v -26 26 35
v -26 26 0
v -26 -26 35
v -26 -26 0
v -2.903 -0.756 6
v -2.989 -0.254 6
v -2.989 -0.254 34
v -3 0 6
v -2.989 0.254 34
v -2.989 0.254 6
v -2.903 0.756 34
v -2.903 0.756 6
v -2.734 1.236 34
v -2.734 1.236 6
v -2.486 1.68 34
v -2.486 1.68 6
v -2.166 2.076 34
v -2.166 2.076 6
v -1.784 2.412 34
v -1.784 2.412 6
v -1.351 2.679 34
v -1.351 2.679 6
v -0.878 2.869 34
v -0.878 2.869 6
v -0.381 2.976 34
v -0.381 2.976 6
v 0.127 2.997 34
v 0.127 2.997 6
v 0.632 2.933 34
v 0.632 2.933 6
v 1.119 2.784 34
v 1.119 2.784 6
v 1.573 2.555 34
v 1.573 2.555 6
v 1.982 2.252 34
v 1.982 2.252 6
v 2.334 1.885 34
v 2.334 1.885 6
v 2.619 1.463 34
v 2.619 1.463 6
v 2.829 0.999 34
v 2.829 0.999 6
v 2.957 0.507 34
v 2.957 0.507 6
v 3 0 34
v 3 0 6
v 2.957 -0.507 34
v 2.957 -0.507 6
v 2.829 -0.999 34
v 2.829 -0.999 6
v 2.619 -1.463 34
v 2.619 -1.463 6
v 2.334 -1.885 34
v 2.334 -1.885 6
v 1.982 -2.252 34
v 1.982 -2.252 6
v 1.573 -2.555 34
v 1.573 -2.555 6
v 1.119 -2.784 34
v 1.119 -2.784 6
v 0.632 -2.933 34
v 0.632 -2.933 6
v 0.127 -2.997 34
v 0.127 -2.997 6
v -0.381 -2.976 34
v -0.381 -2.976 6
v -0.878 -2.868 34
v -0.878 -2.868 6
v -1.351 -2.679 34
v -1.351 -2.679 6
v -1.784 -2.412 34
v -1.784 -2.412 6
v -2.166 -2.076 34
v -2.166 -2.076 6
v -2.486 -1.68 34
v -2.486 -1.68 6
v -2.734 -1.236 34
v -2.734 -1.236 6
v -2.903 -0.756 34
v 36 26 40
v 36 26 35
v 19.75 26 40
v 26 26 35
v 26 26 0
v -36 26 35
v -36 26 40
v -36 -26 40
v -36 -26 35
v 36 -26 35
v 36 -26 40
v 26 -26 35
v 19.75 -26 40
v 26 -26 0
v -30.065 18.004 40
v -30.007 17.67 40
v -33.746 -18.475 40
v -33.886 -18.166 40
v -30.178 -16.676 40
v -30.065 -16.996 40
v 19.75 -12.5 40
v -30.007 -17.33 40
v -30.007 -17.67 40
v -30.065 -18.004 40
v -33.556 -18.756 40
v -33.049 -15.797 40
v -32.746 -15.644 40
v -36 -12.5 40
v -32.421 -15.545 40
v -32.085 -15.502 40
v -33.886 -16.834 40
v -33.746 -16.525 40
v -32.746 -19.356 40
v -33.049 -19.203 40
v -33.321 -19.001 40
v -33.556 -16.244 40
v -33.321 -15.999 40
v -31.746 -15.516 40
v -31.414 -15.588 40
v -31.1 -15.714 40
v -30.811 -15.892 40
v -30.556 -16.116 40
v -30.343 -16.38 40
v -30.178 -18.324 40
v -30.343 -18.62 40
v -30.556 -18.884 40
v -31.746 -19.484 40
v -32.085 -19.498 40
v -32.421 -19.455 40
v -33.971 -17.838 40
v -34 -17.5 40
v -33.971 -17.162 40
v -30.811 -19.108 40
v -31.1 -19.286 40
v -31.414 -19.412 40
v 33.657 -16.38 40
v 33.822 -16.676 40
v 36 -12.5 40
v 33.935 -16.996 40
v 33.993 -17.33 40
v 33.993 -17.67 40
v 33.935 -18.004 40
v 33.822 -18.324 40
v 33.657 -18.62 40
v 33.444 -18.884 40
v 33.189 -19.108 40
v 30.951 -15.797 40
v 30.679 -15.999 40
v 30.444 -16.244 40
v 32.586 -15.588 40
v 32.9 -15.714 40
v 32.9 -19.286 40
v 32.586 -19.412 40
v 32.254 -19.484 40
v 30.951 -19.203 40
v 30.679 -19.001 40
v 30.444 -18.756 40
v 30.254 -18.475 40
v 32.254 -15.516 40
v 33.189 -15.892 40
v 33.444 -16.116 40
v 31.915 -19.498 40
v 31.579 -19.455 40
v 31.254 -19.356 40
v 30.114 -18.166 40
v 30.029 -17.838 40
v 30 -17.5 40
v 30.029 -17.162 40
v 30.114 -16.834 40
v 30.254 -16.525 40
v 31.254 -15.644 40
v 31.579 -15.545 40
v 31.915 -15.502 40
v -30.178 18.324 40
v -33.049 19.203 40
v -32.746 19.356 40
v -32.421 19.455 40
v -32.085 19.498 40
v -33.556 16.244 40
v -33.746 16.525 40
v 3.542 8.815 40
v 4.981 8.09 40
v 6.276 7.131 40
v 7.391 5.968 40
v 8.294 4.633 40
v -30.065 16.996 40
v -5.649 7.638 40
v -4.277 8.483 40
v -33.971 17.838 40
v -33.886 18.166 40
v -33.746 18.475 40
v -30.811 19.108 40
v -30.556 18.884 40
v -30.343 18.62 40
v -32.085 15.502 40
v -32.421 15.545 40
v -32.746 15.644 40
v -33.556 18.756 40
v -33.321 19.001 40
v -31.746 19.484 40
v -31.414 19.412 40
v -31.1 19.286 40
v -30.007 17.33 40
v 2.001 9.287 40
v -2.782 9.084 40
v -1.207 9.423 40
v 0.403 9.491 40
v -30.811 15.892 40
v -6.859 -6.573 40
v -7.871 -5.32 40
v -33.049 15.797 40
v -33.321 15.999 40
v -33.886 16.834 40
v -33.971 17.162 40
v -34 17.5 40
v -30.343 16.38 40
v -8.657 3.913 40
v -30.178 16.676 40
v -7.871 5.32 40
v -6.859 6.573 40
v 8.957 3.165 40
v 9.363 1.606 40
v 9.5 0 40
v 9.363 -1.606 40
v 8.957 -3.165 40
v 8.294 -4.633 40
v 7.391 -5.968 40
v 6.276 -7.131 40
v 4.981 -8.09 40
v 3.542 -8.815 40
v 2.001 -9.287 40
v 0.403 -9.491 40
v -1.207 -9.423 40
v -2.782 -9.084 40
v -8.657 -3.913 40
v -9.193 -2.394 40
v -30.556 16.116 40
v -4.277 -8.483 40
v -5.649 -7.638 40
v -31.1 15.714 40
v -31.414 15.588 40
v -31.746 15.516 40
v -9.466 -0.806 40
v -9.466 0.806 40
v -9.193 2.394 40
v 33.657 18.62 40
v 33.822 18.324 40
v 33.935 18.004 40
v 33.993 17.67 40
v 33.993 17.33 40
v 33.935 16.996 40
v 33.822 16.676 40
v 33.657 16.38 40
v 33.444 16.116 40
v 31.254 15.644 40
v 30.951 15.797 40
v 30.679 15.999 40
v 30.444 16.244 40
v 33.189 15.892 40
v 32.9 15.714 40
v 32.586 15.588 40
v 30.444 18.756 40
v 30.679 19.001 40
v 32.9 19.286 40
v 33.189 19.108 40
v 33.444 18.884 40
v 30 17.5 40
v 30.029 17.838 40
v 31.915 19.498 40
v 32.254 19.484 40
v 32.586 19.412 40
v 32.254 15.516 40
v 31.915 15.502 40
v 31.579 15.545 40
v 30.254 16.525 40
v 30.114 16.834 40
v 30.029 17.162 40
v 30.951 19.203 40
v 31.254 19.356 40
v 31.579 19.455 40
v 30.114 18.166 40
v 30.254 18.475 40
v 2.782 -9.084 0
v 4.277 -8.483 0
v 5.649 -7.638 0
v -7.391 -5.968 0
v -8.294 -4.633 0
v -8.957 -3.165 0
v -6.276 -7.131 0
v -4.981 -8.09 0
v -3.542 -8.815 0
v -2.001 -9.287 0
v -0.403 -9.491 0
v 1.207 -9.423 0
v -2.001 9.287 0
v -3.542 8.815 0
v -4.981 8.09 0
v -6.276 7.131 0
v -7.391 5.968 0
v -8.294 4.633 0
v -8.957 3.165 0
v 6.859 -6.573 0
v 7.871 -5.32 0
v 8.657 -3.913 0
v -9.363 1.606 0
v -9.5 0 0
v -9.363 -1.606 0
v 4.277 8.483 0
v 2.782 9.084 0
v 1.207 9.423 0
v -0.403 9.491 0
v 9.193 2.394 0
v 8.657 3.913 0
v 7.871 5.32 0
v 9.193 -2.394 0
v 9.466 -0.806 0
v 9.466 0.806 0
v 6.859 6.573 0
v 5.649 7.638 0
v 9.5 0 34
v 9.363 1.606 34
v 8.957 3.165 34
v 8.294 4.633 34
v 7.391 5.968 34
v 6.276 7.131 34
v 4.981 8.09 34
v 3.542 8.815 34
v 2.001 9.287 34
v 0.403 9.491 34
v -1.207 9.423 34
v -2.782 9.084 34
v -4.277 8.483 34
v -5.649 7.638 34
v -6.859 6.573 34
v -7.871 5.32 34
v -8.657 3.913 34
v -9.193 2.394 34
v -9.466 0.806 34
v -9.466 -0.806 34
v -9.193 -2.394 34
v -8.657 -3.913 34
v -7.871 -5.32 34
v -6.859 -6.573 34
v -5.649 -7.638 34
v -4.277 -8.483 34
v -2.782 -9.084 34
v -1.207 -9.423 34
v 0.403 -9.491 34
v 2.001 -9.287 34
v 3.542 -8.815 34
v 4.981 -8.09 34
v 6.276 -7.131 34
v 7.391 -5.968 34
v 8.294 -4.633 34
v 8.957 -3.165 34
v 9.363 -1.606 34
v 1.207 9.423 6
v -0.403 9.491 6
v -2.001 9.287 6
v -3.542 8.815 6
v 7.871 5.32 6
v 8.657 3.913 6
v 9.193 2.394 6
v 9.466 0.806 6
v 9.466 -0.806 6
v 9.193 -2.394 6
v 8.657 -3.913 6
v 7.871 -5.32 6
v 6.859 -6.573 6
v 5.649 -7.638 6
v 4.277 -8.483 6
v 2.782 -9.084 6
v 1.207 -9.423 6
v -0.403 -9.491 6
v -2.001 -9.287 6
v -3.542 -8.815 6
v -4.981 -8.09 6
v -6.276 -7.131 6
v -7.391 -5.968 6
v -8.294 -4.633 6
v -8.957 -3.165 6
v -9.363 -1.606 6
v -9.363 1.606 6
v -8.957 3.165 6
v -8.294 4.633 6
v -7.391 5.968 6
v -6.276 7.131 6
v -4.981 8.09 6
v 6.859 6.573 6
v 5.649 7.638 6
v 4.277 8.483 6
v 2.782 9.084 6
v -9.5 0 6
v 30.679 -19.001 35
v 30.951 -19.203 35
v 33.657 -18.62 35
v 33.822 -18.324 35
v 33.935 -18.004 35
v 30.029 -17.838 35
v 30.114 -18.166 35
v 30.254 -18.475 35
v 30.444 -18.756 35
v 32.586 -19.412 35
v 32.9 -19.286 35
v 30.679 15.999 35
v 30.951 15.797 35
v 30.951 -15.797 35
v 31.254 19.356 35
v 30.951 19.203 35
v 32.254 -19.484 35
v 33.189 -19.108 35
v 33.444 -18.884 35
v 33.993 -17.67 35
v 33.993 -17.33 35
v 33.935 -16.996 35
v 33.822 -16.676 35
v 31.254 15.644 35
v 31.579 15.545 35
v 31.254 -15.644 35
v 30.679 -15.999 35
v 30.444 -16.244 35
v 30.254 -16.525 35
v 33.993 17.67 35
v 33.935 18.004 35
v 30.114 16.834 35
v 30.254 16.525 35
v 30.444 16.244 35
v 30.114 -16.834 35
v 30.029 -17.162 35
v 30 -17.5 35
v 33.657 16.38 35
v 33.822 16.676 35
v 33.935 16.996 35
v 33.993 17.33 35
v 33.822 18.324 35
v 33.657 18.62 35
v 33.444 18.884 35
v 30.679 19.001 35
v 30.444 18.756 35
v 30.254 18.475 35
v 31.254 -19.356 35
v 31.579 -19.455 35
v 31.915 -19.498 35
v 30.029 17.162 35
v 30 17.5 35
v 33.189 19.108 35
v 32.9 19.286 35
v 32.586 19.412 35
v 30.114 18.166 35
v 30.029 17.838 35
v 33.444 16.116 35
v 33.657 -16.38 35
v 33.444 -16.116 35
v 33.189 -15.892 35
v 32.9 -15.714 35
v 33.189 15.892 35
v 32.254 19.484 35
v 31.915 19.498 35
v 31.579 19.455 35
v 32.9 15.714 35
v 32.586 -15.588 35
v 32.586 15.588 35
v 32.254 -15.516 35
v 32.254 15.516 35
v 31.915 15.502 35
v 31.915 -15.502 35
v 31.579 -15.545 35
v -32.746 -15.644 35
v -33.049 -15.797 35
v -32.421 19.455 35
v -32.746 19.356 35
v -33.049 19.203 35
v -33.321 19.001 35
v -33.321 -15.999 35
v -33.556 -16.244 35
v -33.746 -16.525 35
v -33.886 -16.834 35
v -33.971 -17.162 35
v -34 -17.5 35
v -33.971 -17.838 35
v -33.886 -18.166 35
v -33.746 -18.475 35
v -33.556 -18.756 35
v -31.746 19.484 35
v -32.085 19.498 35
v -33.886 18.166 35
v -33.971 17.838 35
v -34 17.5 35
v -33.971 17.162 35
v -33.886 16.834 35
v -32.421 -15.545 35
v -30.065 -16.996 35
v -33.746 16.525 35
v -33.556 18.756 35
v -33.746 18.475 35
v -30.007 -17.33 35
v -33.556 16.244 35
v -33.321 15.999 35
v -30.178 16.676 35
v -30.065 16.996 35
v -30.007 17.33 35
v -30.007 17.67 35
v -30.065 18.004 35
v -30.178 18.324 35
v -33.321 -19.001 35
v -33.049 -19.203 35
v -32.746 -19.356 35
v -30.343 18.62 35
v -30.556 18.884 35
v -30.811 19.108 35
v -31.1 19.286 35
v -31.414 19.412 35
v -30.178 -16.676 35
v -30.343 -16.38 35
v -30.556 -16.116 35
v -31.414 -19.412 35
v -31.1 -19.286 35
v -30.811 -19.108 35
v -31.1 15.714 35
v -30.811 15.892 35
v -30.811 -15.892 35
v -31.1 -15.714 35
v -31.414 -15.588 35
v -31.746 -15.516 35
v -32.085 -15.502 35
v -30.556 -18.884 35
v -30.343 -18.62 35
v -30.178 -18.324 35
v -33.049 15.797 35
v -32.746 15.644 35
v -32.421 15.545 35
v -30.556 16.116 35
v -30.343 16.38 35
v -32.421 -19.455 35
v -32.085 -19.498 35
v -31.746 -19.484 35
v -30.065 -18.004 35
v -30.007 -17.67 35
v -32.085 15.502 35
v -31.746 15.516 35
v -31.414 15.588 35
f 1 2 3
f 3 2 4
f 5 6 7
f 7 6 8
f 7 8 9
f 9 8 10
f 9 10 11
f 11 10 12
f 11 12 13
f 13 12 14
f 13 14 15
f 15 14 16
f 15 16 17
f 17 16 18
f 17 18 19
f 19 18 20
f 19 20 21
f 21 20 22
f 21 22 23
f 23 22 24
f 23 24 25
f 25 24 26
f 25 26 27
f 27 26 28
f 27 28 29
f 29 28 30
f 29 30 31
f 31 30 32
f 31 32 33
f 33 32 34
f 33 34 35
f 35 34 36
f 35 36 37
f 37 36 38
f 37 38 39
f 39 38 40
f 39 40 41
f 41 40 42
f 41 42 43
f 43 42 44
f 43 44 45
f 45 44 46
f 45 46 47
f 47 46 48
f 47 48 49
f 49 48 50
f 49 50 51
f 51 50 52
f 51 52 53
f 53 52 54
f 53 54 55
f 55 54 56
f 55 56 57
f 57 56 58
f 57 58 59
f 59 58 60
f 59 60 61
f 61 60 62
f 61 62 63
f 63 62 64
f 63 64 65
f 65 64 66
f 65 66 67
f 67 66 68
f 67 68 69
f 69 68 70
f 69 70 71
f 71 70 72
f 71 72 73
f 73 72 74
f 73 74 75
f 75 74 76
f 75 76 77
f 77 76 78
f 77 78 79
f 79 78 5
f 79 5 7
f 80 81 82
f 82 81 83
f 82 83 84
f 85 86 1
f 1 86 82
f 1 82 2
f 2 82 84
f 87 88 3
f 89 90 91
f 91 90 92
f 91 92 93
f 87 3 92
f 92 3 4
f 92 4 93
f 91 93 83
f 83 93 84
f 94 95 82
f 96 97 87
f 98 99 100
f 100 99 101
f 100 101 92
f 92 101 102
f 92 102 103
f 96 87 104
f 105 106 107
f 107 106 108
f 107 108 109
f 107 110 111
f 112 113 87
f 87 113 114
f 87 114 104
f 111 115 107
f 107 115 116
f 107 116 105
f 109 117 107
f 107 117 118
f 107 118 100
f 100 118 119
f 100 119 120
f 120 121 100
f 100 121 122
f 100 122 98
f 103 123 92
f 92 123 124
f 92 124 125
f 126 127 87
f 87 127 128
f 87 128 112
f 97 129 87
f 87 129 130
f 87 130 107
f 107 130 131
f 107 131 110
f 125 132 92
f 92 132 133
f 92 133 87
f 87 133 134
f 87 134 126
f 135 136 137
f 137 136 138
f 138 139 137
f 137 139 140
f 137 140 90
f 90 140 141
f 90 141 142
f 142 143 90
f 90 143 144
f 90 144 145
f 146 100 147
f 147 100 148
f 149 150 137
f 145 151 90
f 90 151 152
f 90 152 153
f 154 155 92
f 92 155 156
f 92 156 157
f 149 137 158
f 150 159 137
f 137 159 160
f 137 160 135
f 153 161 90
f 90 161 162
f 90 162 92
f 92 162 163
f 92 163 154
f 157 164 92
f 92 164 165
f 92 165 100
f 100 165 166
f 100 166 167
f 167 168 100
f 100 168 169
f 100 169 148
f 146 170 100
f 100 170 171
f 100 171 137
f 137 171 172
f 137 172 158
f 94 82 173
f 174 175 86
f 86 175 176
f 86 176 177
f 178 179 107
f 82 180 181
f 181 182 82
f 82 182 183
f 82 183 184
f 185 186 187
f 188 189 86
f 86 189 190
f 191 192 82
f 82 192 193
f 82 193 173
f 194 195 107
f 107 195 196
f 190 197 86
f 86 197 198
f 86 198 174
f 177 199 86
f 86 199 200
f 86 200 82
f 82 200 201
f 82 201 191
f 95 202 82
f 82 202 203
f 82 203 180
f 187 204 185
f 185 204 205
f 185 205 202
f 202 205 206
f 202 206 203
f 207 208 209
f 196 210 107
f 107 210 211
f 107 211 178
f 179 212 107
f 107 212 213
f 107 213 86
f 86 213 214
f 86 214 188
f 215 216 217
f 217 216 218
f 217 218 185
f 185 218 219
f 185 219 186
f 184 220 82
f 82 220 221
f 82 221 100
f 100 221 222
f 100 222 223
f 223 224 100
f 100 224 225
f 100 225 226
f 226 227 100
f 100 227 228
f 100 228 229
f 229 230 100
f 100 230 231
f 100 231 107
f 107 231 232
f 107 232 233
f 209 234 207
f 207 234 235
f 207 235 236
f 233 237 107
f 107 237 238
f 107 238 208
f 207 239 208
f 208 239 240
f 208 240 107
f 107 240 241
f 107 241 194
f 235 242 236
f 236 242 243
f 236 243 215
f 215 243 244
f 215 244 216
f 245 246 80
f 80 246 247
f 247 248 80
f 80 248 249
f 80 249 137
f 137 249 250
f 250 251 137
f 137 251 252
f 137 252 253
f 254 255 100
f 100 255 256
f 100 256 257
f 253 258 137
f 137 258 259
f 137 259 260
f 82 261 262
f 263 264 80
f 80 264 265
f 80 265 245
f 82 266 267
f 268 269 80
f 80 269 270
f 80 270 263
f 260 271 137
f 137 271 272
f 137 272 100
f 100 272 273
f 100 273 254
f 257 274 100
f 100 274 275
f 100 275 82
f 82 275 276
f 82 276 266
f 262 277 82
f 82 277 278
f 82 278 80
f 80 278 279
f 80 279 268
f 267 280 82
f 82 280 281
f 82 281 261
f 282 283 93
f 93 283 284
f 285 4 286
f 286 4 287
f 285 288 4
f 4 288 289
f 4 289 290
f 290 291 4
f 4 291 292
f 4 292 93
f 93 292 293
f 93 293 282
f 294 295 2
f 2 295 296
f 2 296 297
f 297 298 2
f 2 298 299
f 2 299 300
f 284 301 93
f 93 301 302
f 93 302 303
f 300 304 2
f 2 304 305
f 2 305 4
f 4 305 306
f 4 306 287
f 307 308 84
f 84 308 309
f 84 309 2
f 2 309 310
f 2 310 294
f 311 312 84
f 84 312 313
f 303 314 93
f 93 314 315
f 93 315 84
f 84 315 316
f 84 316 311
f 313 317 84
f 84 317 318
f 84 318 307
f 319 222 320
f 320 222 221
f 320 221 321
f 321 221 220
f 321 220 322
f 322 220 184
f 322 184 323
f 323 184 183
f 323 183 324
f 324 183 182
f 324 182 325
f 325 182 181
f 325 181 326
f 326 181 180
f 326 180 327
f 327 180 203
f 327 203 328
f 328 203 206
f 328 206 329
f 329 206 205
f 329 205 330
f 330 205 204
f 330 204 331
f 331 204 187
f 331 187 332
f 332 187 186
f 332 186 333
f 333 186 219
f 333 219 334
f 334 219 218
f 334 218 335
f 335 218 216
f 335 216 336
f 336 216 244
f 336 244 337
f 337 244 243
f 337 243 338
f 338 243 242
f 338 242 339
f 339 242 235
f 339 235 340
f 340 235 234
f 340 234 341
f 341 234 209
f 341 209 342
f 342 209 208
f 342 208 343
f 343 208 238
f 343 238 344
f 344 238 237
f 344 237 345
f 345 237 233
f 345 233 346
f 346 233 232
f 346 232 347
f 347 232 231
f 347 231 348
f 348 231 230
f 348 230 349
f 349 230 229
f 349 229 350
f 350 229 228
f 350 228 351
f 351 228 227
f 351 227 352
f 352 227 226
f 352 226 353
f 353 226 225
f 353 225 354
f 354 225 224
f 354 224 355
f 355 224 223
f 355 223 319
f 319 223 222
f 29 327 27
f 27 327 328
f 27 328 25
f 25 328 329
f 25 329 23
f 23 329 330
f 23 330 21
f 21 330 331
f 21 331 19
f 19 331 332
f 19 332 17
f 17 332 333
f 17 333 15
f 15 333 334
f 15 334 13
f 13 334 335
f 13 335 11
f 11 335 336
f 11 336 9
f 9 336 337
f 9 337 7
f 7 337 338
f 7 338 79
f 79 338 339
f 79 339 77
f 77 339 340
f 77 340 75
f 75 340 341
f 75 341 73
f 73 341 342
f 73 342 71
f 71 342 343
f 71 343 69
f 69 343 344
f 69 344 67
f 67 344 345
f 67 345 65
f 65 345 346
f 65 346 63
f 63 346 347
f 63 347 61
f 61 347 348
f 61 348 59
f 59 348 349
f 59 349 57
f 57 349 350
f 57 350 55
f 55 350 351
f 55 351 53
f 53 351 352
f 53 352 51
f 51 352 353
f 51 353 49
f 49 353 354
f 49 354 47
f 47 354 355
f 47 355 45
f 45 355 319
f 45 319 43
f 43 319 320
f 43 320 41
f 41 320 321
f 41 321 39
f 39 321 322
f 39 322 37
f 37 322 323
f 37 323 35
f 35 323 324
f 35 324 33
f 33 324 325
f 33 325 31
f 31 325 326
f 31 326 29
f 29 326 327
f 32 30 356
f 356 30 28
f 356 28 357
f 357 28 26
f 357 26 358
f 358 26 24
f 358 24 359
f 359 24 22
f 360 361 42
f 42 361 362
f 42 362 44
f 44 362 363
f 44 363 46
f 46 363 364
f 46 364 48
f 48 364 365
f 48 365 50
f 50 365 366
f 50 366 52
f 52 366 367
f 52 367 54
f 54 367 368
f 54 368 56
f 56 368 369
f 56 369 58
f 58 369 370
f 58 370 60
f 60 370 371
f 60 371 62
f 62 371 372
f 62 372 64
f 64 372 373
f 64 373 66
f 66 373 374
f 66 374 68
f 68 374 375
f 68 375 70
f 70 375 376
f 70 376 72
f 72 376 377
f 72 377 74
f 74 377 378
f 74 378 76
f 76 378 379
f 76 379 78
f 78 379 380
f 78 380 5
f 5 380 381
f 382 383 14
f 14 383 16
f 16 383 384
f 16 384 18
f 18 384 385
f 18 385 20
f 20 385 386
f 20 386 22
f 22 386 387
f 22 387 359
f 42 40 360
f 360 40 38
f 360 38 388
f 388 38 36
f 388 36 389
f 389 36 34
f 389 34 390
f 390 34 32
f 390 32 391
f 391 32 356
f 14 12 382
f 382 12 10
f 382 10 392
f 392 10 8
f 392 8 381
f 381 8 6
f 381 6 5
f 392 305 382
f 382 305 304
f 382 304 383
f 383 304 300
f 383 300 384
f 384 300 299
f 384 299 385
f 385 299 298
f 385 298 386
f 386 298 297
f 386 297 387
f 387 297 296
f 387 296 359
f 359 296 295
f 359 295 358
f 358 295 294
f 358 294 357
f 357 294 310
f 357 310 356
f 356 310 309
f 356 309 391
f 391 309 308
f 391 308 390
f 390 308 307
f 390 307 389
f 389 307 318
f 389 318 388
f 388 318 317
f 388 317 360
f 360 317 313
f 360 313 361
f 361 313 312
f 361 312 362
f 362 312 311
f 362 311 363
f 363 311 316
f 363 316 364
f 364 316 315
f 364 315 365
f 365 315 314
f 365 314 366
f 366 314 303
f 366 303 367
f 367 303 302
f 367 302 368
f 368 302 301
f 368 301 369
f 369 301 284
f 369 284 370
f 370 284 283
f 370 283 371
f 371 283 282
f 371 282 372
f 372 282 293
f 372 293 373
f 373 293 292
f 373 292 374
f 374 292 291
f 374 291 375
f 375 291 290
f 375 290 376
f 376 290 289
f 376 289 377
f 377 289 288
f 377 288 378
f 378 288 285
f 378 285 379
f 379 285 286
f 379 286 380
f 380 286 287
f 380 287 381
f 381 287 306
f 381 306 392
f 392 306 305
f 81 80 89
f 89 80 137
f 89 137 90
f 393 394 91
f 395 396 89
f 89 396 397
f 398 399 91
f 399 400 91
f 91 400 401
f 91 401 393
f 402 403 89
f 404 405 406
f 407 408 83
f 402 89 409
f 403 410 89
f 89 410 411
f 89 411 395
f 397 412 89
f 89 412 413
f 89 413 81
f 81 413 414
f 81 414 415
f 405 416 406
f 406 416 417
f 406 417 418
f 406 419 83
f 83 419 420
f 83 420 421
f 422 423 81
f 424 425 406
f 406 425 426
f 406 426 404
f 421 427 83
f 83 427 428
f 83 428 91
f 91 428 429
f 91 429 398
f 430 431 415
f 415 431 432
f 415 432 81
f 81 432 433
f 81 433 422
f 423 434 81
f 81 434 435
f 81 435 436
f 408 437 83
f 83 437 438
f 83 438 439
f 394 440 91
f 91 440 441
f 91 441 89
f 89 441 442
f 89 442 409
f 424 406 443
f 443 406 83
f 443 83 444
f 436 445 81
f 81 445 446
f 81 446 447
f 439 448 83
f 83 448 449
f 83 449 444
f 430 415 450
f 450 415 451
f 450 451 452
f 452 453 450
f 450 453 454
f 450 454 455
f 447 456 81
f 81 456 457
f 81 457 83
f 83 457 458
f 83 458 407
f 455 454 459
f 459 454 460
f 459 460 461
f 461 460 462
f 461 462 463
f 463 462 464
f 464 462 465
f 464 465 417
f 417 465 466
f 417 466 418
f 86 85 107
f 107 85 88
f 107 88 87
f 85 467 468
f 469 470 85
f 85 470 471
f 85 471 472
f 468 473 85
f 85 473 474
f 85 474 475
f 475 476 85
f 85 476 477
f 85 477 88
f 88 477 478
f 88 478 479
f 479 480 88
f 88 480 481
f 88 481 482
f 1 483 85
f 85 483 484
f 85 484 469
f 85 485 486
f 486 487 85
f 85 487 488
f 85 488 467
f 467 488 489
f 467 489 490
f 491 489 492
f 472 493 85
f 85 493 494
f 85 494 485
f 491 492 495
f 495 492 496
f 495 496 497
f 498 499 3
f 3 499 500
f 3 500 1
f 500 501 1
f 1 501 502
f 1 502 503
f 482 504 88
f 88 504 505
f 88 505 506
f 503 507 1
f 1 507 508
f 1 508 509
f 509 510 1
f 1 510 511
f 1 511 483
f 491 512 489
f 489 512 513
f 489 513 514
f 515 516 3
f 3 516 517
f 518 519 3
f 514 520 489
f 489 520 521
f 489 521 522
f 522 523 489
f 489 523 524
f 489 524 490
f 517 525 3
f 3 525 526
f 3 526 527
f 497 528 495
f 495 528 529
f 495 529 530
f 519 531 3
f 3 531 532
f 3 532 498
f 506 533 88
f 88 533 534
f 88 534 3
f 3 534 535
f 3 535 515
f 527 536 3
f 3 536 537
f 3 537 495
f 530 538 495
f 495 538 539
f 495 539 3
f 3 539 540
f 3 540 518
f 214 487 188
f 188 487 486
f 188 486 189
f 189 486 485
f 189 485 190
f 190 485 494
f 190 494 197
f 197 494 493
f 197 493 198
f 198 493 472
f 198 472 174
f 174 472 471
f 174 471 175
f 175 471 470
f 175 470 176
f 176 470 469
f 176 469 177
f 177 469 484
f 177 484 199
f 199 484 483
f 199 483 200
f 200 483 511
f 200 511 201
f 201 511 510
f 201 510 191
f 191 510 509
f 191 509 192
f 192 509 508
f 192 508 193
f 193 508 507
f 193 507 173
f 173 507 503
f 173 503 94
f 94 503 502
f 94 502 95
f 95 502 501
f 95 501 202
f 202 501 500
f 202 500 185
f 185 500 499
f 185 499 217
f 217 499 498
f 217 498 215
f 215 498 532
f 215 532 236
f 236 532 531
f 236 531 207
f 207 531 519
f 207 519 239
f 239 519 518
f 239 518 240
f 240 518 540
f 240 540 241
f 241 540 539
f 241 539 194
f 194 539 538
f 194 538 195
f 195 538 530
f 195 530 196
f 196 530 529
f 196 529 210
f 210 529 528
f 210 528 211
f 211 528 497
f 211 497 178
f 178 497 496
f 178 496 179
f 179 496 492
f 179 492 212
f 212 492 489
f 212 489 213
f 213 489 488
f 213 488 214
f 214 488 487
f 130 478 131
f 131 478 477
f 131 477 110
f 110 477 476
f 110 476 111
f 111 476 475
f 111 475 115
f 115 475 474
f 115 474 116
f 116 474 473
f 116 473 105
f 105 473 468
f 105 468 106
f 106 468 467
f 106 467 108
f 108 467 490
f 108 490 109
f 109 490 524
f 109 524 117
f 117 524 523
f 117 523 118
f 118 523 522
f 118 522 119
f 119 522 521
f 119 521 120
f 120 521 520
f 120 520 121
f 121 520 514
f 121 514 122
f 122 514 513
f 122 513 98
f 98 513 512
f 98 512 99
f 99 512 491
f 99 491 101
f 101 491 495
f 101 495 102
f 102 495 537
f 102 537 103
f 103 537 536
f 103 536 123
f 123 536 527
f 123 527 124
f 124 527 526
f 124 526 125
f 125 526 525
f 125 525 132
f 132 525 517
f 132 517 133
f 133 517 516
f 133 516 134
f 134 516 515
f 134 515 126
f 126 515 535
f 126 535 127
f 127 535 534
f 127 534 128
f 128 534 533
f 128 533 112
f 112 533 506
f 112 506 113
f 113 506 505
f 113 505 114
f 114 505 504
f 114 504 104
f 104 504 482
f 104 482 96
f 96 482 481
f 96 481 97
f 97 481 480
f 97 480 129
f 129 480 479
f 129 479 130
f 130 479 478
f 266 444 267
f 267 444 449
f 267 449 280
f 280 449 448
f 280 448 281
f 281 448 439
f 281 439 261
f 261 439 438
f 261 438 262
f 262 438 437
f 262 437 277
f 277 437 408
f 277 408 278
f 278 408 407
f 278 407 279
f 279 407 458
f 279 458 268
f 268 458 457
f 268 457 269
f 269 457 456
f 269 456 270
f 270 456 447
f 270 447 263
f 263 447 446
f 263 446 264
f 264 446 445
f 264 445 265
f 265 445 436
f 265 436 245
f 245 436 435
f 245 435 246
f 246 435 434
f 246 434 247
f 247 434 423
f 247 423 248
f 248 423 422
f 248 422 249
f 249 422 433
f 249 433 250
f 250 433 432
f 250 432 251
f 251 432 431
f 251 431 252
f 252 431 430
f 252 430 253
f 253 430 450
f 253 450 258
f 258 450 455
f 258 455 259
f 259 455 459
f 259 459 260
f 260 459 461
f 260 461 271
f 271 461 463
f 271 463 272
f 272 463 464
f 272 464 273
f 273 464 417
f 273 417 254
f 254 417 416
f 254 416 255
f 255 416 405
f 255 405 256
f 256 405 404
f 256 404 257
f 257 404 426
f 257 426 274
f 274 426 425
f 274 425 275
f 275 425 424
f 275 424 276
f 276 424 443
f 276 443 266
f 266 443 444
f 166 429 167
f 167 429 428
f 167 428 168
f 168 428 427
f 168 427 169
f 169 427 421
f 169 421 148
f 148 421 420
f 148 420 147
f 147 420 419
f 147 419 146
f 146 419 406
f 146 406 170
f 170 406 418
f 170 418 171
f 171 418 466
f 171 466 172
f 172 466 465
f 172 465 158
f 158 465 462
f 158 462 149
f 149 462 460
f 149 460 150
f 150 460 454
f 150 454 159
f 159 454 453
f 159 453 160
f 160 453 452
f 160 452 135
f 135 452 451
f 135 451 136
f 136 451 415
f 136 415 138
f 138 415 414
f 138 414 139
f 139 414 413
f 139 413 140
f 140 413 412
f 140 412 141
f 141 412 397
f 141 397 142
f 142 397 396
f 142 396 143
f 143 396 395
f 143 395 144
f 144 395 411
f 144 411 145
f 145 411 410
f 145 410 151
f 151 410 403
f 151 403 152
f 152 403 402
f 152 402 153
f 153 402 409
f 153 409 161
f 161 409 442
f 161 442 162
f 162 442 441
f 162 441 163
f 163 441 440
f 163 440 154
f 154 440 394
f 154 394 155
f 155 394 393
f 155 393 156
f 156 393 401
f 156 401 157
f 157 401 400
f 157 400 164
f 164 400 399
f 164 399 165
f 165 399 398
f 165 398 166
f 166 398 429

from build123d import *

# Parameters (mm, degrees)
SKETCH3_W           = 52
SKETCH3_H           = 52
BOSS_EXTRUDE1_DEPTH = 40
SKETCH4_R           = 3
CUT_EXTRUDE5_DEPTH  = 40
SKETCH4_5_R         = 9.5
SKETCH4_5_R_2       = 3
CUT_EXTRUDE6_DEPTH  = 6
CUT_EXTRUDE8_START  = -6
SKETCH5_R           = 9.5
CUT_EXTRUDE8_DEPTH  = 6
SKETCH6_W           = 10
SKETCH6_H           = 52
BOSS_EXTRUDE2_DEPTH = 5
SKETCH7_R           = 2
CUT_EXTRUDE9_DEPTH  = 5


with BuildPart() as part:
    # Sketch3 → Boss-Extrude1 (new body)
    with BuildSketch(Plane.XY):
        Rectangle(SKETCH3_W, SKETCH3_H)
    extrude(amount=BOSS_EXTRUDE1_DEPTH)

    # Sketch4 → Cut-Extrude5 (cut)
    with BuildSketch(Plane.XY.offset(40)):
        Circle(SKETCH4_R)
    extrude(amount=-CUT_EXTRUDE5_DEPTH, mode=Mode.SUBTRACT)

    # Sketch4<5> → Cut-Extrude6 (cut)
    with BuildSketch(Plane.XY.offset(40)):
        Circle(SKETCH4_5_R)
        Circle(SKETCH4_5_R_2, mode=Mode.SUBTRACT)
    extrude(amount=-CUT_EXTRUDE6_DEPTH, mode=Mode.SUBTRACT)

    # Sketch5 → Cut-Extrude8 (cut)
    with BuildSketch(Plane(origin=(0, 0, 0), x_dir=(-1, 0, 0), z_dir=(0, 0, -1)).offset(CUT_EXTRUDE8_START)):
        with Locations(Location((0, 0, 0), (0, 0, 180))):
            Circle(SKETCH5_R)
    extrude(amount=CUT_EXTRUDE8_DEPTH, mode=Mode.SUBTRACT)

    # Sketch6 → Boss-Extrude2 (add)
    with BuildSketch(Plane.XY.offset(40)):
        with Locations((31, 0)):
            Rectangle(SKETCH6_W, SKETCH6_H)
        with Locations((-31, 0)):
            Rectangle(SKETCH6_W, SKETCH6_H)
    extrude(amount=-BOSS_EXTRUDE2_DEPTH)

    # Sketch7 → Cut-Extrude9 (cut)
    with BuildSketch(Plane(origin=(0, 0, 35), x_dir=(-1, 0, 0), z_dir=(0, 0, -1))):
        with Locations((-32, 17.5)):
            Circle(SKETCH7_R)
        with Locations((32, 17.5)):
            Circle(SKETCH7_R)
        with Locations((32, -17.5)):
            Circle(SKETCH7_R)
        with Locations((-32, -17.5)):
            Circle(SKETCH7_R)
    extrude(amount=-CUT_EXTRUDE9_DEPTH, mode=Mode.SUBTRACT)


solid = part.part
